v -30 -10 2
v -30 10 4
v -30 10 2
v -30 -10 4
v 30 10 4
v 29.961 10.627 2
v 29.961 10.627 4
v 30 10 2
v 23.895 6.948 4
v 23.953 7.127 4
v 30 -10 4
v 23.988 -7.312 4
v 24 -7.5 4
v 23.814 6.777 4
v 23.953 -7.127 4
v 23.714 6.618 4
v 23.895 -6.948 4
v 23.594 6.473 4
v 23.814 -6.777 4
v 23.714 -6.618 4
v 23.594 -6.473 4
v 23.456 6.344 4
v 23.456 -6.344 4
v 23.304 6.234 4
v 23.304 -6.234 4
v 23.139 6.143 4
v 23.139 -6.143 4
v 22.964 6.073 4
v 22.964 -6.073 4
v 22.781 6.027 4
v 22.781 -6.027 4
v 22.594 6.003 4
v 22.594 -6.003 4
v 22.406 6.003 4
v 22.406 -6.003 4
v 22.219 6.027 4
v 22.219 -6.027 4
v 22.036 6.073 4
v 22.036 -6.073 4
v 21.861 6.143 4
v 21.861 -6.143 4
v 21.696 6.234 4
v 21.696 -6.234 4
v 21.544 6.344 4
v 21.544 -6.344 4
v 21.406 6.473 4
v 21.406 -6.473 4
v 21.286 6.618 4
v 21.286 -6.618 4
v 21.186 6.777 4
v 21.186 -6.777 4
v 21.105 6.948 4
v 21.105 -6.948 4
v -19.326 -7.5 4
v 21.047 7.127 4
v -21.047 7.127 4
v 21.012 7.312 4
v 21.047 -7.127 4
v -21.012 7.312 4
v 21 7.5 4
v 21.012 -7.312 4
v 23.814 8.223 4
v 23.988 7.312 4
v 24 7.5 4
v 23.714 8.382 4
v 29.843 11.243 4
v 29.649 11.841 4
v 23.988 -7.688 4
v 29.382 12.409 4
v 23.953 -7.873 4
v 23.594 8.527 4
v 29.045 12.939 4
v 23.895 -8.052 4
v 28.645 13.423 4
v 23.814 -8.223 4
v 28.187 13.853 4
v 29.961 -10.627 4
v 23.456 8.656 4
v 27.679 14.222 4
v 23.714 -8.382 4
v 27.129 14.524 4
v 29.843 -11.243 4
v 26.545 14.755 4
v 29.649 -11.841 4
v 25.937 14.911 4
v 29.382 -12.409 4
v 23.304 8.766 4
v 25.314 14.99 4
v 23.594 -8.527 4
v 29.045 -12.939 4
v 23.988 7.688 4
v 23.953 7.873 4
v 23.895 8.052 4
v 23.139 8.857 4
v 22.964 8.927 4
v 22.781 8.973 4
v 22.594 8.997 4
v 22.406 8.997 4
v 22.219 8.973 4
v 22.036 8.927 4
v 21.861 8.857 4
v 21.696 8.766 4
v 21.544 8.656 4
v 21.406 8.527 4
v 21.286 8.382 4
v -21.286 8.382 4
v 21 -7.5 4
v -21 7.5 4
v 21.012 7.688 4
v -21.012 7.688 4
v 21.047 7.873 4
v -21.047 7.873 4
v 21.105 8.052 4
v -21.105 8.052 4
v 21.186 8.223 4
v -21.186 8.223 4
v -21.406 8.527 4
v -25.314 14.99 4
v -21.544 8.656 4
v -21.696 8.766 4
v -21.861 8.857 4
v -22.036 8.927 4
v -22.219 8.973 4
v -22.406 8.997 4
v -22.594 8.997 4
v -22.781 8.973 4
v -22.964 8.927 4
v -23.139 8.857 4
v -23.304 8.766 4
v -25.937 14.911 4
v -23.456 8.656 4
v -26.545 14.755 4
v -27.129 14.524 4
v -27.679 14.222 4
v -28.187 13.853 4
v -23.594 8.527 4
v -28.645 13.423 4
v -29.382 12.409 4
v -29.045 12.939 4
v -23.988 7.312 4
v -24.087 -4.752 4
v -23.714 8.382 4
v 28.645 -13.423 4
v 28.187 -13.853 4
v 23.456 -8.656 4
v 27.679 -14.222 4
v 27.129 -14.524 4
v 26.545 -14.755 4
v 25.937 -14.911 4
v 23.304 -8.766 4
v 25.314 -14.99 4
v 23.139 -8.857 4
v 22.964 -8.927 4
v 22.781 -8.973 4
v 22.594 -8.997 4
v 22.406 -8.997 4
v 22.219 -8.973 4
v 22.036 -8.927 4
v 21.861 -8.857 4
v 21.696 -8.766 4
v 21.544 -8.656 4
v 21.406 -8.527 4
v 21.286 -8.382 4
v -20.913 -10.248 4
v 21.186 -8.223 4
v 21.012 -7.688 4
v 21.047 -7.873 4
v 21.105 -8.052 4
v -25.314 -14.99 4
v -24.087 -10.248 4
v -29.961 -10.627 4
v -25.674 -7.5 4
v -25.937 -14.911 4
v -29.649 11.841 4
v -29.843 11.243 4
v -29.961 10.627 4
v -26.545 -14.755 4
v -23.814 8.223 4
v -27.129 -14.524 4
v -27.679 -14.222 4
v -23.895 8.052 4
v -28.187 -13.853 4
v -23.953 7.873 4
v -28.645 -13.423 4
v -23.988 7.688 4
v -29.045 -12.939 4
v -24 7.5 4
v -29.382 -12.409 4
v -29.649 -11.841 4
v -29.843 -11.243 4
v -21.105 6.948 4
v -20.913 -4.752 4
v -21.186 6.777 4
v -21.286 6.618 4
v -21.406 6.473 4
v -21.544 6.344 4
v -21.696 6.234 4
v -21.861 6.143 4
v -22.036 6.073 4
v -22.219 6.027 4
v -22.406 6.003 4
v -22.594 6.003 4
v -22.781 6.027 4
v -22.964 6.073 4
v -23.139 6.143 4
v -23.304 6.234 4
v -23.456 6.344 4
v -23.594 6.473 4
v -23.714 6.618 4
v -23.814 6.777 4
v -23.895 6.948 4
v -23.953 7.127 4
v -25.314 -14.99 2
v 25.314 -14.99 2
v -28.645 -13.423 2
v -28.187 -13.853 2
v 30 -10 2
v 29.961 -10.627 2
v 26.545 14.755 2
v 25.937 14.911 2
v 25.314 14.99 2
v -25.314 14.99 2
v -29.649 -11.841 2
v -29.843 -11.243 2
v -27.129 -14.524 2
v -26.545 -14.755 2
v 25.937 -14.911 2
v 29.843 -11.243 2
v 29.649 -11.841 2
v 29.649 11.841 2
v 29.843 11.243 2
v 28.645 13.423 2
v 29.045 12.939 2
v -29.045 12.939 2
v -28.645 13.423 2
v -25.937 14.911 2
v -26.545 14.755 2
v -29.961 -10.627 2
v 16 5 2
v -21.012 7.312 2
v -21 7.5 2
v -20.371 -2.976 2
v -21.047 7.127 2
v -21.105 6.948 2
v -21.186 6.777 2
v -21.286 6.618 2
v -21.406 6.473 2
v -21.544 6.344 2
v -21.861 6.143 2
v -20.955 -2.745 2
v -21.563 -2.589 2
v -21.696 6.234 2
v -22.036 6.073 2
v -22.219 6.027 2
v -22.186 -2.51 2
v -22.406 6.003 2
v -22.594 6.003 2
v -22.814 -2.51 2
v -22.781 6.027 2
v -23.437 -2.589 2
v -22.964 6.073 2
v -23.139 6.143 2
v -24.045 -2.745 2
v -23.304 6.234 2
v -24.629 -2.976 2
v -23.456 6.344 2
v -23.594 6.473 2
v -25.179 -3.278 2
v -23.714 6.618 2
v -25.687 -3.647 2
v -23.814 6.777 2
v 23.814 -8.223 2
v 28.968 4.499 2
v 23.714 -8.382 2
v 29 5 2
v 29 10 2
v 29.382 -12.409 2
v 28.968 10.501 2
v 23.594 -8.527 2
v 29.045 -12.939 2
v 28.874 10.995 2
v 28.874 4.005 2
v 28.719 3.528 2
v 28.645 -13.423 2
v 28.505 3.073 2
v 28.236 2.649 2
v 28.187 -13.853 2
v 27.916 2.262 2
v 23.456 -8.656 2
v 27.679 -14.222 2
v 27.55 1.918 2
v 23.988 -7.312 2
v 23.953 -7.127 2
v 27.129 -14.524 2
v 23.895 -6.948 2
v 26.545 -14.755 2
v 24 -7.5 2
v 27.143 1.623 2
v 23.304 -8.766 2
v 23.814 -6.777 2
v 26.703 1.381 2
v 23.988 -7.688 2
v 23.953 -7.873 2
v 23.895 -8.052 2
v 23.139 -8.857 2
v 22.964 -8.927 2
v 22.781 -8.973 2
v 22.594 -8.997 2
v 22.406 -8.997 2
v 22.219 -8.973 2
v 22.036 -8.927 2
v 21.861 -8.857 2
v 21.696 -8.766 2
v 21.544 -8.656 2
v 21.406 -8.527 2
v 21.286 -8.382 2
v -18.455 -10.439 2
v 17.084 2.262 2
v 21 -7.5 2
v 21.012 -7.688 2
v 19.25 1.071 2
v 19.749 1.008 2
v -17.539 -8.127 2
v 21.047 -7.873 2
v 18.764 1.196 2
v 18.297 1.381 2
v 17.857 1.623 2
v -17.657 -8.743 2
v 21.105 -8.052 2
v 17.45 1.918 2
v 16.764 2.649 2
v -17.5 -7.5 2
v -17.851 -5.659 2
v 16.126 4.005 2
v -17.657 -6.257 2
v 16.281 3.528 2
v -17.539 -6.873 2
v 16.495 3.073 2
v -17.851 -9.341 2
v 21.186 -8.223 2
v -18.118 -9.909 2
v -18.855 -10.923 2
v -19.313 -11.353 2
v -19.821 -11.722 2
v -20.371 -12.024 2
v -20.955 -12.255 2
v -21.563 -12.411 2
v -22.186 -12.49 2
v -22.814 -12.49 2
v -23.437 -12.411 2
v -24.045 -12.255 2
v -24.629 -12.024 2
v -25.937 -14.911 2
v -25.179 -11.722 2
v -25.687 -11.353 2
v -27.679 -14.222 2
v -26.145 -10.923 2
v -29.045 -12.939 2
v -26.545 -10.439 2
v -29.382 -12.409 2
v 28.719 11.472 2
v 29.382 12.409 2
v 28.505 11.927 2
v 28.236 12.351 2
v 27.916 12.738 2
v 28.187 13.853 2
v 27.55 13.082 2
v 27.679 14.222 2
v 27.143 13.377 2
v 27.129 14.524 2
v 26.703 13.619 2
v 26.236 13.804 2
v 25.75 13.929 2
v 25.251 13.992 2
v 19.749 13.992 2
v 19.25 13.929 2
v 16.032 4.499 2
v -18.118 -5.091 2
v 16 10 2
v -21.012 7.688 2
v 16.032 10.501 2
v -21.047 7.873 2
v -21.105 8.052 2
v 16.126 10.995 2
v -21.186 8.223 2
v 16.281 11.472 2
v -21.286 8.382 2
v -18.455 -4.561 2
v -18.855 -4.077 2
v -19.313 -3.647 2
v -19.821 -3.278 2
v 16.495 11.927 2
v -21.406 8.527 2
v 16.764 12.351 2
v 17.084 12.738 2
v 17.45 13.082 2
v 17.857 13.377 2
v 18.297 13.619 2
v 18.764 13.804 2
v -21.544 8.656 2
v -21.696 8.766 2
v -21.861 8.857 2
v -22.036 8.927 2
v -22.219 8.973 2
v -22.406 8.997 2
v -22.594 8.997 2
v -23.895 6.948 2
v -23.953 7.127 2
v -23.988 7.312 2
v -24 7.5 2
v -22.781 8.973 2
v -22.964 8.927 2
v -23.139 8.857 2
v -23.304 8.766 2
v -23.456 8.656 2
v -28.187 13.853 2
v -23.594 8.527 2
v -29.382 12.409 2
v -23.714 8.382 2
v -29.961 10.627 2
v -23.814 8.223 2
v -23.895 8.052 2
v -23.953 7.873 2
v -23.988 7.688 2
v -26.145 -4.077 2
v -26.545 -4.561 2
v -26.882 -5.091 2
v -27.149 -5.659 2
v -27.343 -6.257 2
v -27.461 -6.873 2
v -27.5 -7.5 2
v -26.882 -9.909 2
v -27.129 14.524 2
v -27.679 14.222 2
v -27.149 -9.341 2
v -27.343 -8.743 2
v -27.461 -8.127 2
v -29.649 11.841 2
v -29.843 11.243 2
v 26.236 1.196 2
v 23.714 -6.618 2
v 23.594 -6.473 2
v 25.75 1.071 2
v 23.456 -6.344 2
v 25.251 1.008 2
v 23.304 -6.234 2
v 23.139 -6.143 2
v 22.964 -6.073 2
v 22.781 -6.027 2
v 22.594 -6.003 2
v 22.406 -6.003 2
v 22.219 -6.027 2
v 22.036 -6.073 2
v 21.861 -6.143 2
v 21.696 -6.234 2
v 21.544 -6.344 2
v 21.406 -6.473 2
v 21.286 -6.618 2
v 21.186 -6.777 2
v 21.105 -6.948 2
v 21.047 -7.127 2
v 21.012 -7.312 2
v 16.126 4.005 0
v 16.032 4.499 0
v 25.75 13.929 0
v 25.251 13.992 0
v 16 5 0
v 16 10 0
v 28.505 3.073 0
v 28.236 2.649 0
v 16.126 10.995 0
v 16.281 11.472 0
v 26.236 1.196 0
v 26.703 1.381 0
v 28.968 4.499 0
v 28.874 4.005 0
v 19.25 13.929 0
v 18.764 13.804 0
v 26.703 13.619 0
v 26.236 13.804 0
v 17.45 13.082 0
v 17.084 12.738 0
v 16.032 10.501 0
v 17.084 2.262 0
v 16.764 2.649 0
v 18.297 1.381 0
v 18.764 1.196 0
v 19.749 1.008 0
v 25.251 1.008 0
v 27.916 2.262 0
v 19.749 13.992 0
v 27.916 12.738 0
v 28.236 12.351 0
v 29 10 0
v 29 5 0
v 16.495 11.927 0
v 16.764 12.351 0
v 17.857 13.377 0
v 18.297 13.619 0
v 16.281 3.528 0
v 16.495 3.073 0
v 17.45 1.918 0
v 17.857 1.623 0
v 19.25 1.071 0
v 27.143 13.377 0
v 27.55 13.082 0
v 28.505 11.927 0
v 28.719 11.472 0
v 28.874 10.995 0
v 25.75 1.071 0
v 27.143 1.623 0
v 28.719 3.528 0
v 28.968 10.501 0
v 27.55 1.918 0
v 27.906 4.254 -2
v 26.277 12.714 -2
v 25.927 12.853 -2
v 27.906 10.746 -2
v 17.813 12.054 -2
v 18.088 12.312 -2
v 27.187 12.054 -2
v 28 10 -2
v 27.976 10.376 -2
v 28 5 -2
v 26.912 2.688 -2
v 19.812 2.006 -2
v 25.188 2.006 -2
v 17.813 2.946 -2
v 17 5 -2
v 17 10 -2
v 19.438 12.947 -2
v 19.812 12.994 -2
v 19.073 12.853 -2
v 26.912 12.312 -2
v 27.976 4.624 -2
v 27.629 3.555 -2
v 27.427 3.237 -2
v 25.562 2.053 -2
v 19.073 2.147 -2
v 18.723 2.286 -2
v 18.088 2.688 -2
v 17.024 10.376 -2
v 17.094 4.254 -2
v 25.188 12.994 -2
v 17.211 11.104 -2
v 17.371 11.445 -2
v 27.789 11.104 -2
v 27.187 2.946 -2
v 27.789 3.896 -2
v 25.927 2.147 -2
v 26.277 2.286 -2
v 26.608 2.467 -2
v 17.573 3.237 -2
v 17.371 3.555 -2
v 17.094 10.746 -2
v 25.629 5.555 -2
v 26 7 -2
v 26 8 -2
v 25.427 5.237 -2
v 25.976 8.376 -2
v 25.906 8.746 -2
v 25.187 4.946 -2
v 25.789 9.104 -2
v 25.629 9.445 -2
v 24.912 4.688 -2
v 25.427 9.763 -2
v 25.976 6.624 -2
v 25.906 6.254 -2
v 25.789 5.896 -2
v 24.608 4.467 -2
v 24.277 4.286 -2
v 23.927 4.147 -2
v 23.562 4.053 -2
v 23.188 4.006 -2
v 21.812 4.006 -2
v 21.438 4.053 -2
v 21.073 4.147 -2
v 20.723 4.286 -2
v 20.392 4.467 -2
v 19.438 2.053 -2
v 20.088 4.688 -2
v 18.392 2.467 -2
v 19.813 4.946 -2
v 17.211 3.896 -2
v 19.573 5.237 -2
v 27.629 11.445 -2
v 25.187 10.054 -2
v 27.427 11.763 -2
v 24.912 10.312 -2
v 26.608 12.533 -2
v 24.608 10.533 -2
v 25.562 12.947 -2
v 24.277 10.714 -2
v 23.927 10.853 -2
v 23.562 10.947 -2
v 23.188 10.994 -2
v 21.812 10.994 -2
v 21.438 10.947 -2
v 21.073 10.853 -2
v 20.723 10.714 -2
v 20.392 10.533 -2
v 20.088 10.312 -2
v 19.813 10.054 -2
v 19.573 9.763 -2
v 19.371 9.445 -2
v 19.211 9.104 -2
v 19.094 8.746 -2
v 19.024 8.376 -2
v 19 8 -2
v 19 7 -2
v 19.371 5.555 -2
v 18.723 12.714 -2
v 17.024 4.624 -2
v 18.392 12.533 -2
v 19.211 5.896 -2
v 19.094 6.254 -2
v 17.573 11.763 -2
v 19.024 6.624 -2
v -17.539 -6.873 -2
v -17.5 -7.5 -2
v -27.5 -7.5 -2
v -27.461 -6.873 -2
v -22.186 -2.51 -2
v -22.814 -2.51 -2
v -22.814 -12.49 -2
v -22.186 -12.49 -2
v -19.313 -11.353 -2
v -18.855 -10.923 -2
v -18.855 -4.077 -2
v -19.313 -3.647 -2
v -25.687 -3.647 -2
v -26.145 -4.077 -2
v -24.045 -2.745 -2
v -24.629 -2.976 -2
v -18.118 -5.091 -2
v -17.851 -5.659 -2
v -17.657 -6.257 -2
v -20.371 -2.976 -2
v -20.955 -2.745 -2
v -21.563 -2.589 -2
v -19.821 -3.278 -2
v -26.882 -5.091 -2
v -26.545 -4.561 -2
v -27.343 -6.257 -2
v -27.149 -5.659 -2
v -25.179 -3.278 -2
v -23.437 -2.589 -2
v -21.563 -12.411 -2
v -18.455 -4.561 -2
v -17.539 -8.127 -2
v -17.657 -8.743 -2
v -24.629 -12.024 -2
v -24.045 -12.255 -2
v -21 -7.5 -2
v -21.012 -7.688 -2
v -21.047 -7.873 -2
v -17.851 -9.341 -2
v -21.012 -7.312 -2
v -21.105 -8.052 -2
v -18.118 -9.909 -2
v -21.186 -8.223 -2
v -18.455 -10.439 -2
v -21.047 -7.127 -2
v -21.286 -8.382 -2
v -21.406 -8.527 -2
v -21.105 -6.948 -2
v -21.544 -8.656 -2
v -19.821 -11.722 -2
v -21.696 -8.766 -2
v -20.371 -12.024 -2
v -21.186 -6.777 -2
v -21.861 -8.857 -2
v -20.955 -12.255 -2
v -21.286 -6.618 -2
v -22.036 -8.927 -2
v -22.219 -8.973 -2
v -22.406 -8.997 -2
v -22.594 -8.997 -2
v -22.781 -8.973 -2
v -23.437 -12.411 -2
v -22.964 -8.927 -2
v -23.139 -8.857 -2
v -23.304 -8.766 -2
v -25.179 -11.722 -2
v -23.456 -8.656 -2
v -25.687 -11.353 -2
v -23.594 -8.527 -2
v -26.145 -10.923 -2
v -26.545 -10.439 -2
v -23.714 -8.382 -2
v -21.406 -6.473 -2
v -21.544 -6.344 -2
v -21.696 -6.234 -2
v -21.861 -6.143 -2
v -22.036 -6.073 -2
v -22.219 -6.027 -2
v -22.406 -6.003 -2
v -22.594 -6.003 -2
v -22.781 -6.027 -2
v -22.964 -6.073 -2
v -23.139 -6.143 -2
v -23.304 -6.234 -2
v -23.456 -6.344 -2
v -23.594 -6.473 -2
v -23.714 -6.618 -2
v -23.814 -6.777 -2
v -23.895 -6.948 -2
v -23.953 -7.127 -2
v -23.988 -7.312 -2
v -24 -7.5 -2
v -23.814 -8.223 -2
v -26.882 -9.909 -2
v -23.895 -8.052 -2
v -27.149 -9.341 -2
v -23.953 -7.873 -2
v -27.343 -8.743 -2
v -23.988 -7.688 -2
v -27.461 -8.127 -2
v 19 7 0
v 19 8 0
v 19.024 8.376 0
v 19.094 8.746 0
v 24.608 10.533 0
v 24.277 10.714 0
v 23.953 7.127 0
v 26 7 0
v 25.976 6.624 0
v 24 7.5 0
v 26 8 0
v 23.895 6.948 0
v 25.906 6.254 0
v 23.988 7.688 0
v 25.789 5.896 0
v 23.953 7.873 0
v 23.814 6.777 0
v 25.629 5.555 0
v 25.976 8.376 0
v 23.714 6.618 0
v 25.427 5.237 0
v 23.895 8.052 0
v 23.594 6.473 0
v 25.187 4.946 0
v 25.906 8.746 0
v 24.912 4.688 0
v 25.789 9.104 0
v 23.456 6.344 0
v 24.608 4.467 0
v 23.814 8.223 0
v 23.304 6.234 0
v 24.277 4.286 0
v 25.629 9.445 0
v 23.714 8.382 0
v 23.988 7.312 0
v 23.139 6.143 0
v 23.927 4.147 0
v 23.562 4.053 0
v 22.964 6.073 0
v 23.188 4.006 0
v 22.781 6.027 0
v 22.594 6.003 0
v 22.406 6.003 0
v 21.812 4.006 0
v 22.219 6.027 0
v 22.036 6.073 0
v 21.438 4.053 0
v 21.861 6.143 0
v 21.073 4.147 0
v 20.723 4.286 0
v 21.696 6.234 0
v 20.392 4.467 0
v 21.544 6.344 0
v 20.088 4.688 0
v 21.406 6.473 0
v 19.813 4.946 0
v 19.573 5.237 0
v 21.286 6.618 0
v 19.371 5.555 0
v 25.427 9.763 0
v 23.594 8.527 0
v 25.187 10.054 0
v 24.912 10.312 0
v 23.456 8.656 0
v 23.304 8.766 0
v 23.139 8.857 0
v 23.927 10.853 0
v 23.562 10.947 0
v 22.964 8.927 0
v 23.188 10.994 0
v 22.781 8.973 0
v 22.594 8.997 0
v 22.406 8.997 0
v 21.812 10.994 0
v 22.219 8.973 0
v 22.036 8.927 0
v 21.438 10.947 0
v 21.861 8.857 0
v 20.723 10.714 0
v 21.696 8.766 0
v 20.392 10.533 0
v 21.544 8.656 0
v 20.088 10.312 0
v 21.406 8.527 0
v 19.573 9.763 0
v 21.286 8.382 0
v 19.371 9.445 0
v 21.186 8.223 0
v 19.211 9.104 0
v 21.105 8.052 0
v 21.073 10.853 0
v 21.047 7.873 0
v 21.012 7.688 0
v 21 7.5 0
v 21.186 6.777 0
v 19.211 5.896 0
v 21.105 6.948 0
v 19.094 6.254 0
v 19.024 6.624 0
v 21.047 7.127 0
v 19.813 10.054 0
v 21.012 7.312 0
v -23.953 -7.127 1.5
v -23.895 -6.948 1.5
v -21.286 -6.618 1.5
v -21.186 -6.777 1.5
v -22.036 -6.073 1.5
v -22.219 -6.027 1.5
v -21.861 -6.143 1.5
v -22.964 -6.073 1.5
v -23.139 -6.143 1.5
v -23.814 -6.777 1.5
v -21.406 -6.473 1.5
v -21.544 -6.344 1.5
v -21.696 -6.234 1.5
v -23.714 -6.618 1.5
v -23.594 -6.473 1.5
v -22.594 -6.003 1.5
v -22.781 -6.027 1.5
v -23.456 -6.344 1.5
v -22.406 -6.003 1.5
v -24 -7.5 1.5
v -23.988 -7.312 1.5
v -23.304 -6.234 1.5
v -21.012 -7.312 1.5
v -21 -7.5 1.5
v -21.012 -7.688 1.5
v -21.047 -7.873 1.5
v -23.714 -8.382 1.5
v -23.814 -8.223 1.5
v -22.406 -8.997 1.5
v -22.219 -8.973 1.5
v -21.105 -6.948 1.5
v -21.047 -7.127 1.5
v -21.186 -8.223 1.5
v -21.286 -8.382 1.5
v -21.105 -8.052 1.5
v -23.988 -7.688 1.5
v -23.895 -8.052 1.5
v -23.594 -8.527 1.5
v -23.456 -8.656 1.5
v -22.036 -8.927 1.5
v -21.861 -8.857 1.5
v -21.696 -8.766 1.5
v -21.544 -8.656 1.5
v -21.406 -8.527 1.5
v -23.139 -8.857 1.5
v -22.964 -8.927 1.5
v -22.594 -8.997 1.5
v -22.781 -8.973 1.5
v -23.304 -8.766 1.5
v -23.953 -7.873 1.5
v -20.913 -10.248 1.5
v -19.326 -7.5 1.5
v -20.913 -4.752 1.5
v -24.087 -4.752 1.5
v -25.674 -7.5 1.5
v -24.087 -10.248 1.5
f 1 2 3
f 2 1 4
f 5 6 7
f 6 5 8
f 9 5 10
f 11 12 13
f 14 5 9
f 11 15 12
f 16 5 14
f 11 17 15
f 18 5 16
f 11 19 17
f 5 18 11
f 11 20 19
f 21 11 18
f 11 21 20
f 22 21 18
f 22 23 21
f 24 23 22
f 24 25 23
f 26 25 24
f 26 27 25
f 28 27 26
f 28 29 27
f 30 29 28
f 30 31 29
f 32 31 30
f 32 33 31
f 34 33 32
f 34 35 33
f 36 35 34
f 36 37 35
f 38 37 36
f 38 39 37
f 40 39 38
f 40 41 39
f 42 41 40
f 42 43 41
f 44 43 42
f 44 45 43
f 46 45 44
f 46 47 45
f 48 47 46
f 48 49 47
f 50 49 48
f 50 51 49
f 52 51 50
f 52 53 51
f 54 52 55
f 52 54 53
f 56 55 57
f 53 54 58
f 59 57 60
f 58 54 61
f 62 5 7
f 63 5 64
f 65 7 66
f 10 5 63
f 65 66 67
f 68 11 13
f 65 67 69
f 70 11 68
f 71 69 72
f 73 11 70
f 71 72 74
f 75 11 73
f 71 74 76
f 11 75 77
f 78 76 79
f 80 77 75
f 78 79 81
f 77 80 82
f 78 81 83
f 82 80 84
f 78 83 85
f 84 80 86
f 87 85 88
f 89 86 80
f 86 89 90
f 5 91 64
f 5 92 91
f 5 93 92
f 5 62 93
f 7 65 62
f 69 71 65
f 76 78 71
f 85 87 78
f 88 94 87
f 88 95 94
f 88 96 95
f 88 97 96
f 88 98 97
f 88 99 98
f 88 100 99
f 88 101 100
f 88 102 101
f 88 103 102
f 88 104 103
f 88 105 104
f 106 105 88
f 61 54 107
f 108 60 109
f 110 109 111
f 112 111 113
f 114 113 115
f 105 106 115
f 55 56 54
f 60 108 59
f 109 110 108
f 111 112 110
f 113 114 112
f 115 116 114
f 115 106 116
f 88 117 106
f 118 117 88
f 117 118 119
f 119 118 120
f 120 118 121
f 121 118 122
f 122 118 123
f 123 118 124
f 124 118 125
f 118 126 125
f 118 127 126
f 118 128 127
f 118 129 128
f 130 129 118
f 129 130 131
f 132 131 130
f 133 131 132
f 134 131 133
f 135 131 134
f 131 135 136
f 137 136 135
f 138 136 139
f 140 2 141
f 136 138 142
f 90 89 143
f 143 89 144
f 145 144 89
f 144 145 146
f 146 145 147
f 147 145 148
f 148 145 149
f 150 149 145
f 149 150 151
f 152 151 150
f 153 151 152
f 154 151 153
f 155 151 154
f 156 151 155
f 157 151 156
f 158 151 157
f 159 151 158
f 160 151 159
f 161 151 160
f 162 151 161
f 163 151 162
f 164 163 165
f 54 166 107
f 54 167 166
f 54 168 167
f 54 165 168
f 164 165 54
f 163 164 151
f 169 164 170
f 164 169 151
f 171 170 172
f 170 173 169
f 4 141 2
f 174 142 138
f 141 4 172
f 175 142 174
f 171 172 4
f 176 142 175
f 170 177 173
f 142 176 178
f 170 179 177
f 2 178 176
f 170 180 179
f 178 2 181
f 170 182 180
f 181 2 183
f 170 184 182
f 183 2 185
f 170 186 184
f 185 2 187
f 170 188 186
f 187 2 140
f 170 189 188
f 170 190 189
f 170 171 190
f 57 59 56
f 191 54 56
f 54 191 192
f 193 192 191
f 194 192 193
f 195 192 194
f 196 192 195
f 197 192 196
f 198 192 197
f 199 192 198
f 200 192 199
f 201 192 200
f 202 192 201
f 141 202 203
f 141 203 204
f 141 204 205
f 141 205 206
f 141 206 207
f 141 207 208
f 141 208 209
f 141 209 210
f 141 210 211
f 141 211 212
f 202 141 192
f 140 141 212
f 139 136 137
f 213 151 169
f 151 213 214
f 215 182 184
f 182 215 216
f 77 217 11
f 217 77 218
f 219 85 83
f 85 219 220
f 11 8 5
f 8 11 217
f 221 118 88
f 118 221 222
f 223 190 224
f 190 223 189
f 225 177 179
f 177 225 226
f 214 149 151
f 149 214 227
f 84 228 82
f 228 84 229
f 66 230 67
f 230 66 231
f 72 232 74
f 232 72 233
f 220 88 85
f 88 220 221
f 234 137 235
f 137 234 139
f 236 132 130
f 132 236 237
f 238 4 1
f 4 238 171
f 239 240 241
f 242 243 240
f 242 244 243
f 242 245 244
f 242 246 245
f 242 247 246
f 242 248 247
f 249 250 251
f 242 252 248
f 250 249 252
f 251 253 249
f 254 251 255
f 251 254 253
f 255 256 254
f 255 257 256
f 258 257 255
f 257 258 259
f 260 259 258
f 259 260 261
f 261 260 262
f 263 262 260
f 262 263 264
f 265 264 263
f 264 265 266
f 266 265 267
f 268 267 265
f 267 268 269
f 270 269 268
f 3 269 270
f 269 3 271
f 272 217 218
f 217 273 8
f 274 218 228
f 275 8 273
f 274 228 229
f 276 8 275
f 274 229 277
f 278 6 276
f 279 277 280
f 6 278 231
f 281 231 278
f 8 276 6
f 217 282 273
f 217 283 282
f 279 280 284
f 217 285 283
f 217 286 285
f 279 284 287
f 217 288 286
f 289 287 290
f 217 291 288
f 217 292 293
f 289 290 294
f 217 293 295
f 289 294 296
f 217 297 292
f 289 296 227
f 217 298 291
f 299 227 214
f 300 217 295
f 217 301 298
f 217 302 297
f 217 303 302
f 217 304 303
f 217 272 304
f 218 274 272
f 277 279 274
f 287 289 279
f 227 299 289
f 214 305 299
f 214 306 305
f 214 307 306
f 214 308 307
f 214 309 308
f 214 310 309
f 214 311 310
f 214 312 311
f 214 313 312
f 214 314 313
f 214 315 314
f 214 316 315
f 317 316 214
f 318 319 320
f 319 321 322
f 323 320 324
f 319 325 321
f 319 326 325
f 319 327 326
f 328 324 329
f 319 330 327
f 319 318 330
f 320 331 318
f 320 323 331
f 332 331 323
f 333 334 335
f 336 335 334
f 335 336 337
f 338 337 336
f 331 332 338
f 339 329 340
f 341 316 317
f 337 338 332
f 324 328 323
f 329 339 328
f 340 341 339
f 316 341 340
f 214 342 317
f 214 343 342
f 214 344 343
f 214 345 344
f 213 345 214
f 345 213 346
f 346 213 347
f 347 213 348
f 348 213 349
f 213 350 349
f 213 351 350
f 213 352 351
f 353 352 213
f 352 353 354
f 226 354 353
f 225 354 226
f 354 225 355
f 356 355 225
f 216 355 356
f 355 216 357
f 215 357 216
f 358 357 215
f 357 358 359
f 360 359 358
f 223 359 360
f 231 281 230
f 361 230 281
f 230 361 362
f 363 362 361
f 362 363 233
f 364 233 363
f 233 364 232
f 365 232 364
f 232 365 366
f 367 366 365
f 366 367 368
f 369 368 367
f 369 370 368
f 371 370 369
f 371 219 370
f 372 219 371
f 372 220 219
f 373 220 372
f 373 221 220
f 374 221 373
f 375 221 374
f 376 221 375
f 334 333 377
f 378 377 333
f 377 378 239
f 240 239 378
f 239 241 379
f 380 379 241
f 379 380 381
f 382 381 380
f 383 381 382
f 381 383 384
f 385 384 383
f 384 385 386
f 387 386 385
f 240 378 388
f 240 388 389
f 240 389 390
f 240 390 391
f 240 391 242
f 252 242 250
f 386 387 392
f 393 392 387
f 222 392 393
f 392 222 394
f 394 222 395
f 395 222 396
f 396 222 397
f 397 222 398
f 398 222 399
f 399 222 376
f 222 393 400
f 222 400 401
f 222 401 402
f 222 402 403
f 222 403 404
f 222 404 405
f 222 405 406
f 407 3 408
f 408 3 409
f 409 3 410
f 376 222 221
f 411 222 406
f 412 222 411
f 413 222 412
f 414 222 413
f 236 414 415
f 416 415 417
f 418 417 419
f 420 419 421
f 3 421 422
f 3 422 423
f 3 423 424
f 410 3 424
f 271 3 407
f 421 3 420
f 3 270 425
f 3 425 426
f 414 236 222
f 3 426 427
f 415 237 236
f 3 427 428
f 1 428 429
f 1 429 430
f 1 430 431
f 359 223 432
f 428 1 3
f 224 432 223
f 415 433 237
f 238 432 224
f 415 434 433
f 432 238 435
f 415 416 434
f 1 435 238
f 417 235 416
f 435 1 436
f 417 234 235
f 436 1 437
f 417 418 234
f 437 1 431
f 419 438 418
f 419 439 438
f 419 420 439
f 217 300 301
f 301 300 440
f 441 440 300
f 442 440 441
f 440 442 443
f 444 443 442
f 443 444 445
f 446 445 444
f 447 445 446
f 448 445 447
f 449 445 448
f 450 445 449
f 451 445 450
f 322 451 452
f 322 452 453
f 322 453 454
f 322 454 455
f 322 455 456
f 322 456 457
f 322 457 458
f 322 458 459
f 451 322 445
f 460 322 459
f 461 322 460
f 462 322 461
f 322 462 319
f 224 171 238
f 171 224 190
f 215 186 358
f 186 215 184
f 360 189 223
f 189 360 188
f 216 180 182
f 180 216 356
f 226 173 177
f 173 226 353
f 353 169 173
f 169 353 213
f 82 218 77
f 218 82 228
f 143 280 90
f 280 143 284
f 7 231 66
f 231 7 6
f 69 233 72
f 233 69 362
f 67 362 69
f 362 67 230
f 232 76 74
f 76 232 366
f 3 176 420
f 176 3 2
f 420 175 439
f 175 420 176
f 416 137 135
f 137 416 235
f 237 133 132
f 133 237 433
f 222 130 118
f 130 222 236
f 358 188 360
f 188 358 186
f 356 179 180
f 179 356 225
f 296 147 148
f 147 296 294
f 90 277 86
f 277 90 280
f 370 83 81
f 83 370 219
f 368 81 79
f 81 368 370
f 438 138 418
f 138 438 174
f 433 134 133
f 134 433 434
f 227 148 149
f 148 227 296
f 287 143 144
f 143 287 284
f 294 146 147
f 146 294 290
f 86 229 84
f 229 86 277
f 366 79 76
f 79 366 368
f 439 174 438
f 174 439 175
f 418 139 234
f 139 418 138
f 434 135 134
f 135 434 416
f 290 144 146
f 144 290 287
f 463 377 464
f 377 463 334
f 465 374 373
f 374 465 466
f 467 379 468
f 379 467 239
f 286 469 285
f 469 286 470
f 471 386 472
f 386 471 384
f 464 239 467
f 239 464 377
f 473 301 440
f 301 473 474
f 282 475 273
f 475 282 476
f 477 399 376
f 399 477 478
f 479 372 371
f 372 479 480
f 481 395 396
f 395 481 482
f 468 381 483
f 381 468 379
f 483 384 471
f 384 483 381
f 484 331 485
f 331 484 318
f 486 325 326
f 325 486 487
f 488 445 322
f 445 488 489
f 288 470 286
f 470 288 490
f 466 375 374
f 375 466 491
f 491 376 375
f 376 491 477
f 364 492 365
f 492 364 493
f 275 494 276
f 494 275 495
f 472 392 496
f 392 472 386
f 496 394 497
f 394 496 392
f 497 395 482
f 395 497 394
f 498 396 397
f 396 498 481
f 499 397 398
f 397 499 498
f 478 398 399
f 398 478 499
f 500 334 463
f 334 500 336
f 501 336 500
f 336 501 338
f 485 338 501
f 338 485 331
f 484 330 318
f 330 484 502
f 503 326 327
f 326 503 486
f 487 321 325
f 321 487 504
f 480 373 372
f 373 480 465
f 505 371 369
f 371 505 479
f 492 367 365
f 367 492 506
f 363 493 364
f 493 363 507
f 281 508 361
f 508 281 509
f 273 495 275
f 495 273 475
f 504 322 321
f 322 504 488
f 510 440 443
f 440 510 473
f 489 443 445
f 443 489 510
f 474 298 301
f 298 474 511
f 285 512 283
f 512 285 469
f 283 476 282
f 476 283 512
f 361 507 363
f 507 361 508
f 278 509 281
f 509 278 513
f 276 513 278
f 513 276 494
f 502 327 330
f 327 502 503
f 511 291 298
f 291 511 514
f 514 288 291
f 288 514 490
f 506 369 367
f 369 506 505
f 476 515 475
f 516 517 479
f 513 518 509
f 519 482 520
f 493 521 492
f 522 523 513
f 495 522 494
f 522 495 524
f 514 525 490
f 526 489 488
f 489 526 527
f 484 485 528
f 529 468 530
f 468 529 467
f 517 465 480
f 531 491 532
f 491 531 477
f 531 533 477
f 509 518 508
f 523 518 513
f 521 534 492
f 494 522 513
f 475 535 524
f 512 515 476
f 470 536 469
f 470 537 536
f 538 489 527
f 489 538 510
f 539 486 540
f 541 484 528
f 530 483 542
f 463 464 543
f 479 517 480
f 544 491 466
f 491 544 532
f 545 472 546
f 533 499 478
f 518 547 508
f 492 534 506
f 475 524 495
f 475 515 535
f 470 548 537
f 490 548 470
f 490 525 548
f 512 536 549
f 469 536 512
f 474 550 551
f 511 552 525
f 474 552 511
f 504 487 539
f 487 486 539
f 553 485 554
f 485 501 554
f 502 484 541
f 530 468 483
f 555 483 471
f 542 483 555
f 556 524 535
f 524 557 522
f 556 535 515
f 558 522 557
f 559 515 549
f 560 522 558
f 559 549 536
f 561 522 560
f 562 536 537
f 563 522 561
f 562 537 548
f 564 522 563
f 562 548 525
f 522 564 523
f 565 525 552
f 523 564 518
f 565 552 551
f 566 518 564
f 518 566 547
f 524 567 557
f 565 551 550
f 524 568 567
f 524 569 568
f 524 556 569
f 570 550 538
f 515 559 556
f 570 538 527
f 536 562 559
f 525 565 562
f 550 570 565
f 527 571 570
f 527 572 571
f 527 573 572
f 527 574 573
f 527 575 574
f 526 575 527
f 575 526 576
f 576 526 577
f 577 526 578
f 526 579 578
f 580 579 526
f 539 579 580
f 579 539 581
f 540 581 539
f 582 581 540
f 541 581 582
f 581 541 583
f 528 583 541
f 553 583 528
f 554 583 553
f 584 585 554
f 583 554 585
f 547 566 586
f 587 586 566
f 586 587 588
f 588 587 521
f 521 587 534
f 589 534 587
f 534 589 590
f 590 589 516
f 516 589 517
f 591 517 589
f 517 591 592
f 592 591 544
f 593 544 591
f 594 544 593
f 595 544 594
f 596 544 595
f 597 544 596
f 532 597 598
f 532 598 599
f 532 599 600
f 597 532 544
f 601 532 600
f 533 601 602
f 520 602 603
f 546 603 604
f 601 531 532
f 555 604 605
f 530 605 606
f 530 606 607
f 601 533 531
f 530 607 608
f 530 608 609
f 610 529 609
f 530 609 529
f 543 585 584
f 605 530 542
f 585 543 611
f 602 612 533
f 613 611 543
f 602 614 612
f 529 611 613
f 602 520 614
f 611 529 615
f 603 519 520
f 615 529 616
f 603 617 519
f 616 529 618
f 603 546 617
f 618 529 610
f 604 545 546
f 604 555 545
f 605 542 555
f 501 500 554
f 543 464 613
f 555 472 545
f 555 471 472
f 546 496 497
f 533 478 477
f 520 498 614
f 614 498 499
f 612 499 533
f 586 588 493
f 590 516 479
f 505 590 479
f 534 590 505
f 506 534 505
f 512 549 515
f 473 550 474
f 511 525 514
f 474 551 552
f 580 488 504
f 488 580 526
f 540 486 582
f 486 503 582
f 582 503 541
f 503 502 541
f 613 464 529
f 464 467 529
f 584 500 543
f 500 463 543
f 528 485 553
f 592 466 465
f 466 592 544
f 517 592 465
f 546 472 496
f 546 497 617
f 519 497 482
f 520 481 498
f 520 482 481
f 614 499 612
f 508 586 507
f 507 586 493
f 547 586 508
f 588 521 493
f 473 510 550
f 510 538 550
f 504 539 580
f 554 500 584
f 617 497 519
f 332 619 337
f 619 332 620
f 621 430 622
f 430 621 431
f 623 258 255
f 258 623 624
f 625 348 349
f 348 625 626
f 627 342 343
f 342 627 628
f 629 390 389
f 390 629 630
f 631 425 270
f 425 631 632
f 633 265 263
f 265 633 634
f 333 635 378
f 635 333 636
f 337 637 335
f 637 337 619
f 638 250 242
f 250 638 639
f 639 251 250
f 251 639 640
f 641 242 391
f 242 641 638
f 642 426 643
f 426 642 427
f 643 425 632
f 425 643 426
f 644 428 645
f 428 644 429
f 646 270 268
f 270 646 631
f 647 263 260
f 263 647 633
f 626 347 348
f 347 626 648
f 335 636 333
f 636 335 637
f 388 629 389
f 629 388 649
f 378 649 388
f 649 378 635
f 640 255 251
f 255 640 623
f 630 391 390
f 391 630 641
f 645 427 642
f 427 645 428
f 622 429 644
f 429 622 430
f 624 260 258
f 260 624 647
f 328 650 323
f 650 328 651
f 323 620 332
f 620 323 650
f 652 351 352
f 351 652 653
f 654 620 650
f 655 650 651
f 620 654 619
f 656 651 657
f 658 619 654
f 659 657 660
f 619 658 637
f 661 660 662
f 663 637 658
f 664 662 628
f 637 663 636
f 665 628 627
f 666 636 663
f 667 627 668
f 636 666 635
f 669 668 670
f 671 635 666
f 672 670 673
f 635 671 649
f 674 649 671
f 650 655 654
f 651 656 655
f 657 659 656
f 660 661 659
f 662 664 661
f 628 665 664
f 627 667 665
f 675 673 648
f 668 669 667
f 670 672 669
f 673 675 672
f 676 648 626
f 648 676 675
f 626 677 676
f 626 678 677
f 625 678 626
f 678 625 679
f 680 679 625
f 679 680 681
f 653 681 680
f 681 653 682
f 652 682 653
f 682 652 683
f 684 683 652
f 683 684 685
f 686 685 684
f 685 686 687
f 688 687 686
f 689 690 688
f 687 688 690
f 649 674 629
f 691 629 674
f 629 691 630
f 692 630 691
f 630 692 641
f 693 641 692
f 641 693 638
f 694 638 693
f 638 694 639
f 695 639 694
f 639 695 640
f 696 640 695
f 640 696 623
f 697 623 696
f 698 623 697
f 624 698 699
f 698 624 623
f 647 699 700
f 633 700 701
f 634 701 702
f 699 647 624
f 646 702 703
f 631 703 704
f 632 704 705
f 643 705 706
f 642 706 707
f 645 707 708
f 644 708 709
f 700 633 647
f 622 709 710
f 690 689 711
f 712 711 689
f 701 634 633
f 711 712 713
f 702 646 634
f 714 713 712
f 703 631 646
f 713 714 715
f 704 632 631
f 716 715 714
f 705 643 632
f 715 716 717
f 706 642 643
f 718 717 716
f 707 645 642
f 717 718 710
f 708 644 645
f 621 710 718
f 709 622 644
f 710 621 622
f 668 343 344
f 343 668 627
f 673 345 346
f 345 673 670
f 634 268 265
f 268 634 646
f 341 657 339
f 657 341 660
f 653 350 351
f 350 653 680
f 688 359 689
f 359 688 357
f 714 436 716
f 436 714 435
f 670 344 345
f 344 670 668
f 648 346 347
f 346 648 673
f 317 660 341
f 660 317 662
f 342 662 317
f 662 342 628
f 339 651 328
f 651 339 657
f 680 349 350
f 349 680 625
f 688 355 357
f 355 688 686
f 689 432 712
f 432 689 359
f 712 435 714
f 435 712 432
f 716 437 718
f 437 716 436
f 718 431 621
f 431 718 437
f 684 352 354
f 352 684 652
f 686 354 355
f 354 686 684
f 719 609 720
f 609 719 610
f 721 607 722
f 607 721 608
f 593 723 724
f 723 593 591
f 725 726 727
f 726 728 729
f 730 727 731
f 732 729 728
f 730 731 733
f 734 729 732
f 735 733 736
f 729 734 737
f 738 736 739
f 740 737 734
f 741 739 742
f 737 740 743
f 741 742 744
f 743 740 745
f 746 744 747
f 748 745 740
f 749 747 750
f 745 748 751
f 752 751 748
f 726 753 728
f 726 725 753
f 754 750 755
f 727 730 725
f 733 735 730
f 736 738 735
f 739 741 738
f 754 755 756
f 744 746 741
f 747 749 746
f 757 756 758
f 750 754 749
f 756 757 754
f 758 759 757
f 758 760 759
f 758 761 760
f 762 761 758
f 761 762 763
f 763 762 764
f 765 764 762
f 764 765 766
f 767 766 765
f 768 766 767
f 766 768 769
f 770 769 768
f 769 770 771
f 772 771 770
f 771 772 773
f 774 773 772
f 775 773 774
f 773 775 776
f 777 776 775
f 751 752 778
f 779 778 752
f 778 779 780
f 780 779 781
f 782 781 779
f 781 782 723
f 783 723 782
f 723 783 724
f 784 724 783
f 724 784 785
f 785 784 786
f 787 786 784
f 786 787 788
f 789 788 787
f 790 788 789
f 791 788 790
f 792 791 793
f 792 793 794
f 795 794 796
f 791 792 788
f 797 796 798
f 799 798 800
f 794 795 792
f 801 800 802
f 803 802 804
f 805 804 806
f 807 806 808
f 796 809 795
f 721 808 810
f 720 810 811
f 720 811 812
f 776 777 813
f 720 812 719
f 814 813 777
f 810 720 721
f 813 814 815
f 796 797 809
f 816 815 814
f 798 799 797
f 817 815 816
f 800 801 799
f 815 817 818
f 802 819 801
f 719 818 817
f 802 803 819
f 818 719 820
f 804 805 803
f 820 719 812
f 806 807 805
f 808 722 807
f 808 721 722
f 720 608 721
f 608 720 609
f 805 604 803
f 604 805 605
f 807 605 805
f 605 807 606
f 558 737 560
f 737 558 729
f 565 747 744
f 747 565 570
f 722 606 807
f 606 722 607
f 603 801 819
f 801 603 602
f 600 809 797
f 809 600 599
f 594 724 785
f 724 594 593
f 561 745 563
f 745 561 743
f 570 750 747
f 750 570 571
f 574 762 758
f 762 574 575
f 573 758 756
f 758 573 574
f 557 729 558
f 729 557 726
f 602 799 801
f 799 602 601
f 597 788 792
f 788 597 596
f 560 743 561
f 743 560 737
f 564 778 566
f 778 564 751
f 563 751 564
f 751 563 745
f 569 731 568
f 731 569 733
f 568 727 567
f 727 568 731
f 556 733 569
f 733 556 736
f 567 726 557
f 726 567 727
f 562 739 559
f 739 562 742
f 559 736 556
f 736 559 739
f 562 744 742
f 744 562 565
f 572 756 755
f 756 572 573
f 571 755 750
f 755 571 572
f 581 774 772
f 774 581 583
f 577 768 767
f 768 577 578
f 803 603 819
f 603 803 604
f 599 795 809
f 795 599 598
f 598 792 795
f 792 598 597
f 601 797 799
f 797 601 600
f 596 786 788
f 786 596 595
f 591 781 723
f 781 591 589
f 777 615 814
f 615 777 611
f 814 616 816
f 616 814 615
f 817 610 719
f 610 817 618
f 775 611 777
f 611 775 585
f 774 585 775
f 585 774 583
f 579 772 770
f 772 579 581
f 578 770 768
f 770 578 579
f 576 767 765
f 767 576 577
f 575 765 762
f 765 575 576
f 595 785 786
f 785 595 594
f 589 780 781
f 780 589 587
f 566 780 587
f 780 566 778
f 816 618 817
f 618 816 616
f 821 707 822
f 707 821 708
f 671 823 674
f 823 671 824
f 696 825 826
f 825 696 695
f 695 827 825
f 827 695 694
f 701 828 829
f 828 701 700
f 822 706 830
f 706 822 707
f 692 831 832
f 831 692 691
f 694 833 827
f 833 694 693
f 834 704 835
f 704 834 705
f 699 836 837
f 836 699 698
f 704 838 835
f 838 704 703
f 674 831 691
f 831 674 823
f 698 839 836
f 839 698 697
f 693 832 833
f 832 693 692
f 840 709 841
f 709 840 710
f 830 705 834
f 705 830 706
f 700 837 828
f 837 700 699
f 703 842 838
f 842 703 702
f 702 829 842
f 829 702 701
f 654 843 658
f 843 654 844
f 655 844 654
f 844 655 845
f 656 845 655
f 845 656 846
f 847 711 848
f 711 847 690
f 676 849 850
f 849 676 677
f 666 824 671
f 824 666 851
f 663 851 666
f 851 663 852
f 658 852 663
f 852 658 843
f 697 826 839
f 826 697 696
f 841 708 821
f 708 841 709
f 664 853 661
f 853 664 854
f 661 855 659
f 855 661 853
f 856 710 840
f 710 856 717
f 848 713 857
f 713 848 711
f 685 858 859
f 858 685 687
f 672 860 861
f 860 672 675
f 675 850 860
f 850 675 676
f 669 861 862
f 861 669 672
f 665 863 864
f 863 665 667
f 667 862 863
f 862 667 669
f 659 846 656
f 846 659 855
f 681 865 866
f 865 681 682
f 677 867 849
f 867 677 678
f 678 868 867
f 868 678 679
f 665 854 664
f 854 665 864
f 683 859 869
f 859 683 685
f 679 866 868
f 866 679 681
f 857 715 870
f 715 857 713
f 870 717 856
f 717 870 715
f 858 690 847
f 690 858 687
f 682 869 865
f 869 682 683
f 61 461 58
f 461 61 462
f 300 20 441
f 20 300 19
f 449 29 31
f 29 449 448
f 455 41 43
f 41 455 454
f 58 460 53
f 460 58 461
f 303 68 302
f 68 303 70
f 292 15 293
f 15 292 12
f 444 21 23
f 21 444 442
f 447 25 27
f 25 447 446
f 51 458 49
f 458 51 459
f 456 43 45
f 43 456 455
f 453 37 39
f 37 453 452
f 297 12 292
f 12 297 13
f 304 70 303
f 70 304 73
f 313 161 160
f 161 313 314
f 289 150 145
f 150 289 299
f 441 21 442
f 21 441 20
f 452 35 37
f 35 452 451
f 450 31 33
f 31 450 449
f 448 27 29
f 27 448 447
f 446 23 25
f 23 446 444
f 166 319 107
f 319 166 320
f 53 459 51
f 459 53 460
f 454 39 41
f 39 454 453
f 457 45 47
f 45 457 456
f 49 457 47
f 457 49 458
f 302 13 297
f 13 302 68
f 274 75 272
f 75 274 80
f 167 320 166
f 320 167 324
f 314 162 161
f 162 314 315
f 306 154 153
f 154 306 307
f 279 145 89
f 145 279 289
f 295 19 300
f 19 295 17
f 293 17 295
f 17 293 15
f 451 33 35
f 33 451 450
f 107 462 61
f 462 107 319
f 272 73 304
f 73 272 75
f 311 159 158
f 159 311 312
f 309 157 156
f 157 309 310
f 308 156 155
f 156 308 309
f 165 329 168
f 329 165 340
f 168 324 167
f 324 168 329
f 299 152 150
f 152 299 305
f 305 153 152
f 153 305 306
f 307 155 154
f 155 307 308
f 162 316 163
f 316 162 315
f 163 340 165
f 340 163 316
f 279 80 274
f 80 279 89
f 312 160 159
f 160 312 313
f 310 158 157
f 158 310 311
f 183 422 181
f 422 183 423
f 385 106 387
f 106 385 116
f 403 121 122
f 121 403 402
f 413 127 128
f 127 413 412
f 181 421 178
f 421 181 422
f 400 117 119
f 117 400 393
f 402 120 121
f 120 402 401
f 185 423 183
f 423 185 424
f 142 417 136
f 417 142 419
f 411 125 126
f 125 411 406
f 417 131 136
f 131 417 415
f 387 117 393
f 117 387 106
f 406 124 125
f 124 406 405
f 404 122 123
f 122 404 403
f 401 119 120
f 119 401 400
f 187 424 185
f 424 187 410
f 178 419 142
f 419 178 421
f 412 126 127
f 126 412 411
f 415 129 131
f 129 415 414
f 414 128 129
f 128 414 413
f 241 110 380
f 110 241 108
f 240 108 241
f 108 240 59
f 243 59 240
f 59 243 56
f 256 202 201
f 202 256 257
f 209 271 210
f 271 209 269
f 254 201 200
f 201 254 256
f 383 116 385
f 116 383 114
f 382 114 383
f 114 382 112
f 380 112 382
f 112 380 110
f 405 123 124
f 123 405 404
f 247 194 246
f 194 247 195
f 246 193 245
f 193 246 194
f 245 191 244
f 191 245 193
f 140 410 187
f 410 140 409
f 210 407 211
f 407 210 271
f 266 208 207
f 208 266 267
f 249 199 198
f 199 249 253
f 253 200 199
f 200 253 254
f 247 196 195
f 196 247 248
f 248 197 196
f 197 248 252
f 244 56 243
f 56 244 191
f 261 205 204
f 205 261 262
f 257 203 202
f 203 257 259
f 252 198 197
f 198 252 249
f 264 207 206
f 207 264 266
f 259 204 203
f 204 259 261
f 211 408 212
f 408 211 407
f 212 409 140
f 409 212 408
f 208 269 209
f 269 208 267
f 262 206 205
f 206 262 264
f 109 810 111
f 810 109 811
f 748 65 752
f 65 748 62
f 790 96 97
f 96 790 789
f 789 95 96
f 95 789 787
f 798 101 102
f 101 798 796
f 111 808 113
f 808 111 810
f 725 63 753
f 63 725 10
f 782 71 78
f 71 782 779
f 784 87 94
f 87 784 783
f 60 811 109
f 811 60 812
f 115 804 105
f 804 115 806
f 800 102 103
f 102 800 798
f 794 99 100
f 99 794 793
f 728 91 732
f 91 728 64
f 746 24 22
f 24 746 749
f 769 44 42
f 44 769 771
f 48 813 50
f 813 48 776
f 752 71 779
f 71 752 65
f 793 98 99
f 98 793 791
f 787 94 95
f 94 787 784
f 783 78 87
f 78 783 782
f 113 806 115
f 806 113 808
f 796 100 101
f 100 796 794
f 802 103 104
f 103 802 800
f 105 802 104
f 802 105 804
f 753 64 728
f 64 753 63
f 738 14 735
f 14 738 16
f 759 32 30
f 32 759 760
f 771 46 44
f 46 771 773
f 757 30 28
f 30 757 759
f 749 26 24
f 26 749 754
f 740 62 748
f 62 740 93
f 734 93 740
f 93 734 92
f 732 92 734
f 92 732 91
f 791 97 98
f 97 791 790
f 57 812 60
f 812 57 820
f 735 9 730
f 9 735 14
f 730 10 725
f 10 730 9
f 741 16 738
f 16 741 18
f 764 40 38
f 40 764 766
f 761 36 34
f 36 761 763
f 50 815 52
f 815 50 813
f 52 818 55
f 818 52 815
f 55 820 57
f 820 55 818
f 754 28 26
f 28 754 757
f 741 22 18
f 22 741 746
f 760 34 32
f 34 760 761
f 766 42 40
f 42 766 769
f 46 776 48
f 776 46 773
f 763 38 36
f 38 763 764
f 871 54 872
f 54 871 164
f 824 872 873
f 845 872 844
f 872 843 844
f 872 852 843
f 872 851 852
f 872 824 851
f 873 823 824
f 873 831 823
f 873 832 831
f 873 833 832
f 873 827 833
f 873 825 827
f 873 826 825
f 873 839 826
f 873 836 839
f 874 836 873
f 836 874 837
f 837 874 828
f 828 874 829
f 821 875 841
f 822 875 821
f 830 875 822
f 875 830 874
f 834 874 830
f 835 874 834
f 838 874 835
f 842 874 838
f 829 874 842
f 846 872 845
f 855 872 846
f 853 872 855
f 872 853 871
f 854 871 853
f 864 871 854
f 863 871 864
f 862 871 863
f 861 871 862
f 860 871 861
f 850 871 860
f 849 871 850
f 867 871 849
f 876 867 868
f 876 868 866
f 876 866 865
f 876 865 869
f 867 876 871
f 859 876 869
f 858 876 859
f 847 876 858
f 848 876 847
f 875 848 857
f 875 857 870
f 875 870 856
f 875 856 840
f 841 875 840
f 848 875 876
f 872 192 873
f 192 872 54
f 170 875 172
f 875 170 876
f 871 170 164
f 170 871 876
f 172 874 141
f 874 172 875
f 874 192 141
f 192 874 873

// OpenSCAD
$fn = 50;


difference() {
	union() {
		translate(v = [0, 0, 2]) {
			rotate(a = [0, 0, 0]) {
				hull() {
					translate(v = [-25.0000000000, 10.0000000000, 0]) {
						rotate(a = [0, 0, 0]) {
							translate(v = [0, 0, 0]) {
								rotate(a = [0, 0, 0]) {
									cylinder(h = 2, r = 5);
								}
							}
						}
					}
					translate(v = [25.0000000000, 10.0000000000, 0]) {
						rotate(a = [0, 0, 0]) {
							translate(v = [0, 0, 0]) {
								rotate(a = [0, 0, 0]) {
									cylinder(h = 2, r = 5);
								}
							}
						}
					}
					translate(v = [-25.0000000000, -10.0000000000, 0]) {
						rotate(a = [0, 0, 0]) {
							translate(v = [0, 0, 0]) {
								rotate(a = [0, 0, 0]) {
									cylinder(h = 2, r = 5);
								}
							}
						}
					}
					translate(v = [25.0000000000, -10.0000000000, 0]) {
						rotate(a = [0, 0, 0]) {
							translate(v = [0, 0, 0]) {
								rotate(a = [0, 0, 0]) {
									cylinder(h = 2, r = 5);
								}
							}
						}
					}
				}
			}
		}
		translate(v = [22.5000000000, 7.5000000000, 0]) {
			rotate(a = [0, 0, 0]) {
				hull() {
					translate(v = [-2.5000000000, 2.5000000000, 0]) {
						rotate(a = [0, 0, 0]) {
							cylinder(h = 2, r1 = 4.0000000000, r2 = 4.0000000000);
						}
					}
					translate(v = [2.5000000000, 2.5000000000, 0]) {
						rotate(a = [0, 0, 0]) {
							cylinder(h = 2, r1 = 4.0000000000, r2 = 4.0000000000);
						}
					}
					translate(v = [-2.5000000000, -2.5000000000, 0]) {
						rotate(a = [0, 0, 0]) {
							cylinder(h = 2, r1 = 4.0000000000, r2 = 4.0000000000);
						}
					}
					translate(v = [2.5000000000, -2.5000000000, 0]) {
						rotate(a = [0, 0, 0]) {
							cylinder(h = 2, r1 = 4.0000000000, r2 = 4.0000000000);
						}
					}
				}
			}
		}
		translate(v = [22.5000000000, 7.5000000000, -2]) {
			rotate(a = [0, 180, 0]) {
				hull() {
					translate(v = [-2.5000000000, 2.5000000000, 0]) {
						rotate(a = [0, 180, 0]) {
							cylinder(h = 2, r1 = 3.0000000000, r2 = 4.0000000000);
						}
					}
					translate(v = [2.5000000000, 2.5000000000, 0]) {
						rotate(a = [0, 180, 0]) {
							cylinder(h = 2, r1 = 3.0000000000, r2 = 4.0000000000);
						}
					}
					translate(v = [-2.5000000000, -2.5000000000, 0]) {
						rotate(a = [0, 180, 0]) {
							cylinder(h = 2, r1 = 3.0000000000, r2 = 4.0000000000);
						}
					}
					translate(v = [2.5000000000, -2.5000000000, 0]) {
						rotate(a = [0, 180, 0]) {
							cylinder(h = 2, r1 = 3.0000000000, r2 = 4.0000000000);
						}
					}
				}
			}
		}
		translate(v = [-22.5000000000, -7.5000000000, -2.0000000000]) {
			rotate(a = [0, 0, 0]) {
				cylinder(h = 4, r = 5);
			}
		}
	}
	union() {
		translate(v = [22.5000000000, 7.5000000000, -2]) {
			rotate(a = [0, 0, 0]) {
				hull() {
					translate(v = [-0.5000000000, 0.5000000000, 0]) {
						rotate(a = [0, 0, 0]) {
							translate(v = [0, 0, 0]) {
								rotate(a = [0, 0, 0]) {
									cylinder(h = 2, r = 3.0000000000);
								}
							}
						}
					}
					translate(v = [0.5000000000, 0.5000000000, 0]) {
						rotate(a = [0, 0, 0]) {
							translate(v = [0, 0, 0]) {
								rotate(a = [0, 0, 0]) {
									cylinder(h = 2, r = 3.0000000000);
								}
							}
						}
					}
					translate(v = [-0.5000000000, -0.5000000000, 0]) {
						rotate(a = [0, 0, 0]) {
							translate(v = [0, 0, 0]) {
								rotate(a = [0, 0, 0]) {
									cylinder(h = 2, r = 3.0000000000);
								}
							}
						}
					}
					translate(v = [0.5000000000, -0.5000000000, 0]) {
						rotate(a = [0, 0, 0]) {
							translate(v = [0, 0, 0]) {
								rotate(a = [0, 0, 0]) {
									cylinder(h = 2, r = 3.0000000000);
								}
							}
						}
					}
				}
			}
		}
		translate(v = [-22.5000000000, -7.5000000000, -50]) {
			rotate(a = [0, 0, 0]) {
				cylinder(h = 100, r = 1.5000000000);
			}
		}
		translate(v = [22.5000000000, -7.5000000000, -50]) {
			rotate(a = [0, 0, 0]) {
				cylinder(h = 100, r = 1.5000000000);
			}
		}
		translate(v = [-22.5000000000, 7.5000000000, -50]) {
			rotate(a = [0, 0, 0]) {
				cylinder(h = 100, r = 1.5000000000);
			}
		}
		translate(v = [22.5000000000, 7.5000000000, -50]) {
			rotate(a = [0, 0, 0]) {
				cylinder(h = 100, r = 1.5000000000);
			}
		}
		translate(v = [-22.5000000000, -7.5000000000, 1.5000000000]) {
			rotate(a = [0, 0, 0]) {
				#translate(v = [0, 0, 0]) {
					rotate(a = [0, 0, 0]) {
						linear_extrude(height = 2.5000000000) {
							polygon(points = [[3.1735000000, 0.0000000000], [1.5867500000, 2.7483316189], [-1.5867500000, 2.7483316189], [-3.1735000000, 0.0000000000], [-1.5867500000, -2.7483316189], [1.5867500000, -2.7483316189]]);
						}
					}
				}
			}
		}
	}
}
